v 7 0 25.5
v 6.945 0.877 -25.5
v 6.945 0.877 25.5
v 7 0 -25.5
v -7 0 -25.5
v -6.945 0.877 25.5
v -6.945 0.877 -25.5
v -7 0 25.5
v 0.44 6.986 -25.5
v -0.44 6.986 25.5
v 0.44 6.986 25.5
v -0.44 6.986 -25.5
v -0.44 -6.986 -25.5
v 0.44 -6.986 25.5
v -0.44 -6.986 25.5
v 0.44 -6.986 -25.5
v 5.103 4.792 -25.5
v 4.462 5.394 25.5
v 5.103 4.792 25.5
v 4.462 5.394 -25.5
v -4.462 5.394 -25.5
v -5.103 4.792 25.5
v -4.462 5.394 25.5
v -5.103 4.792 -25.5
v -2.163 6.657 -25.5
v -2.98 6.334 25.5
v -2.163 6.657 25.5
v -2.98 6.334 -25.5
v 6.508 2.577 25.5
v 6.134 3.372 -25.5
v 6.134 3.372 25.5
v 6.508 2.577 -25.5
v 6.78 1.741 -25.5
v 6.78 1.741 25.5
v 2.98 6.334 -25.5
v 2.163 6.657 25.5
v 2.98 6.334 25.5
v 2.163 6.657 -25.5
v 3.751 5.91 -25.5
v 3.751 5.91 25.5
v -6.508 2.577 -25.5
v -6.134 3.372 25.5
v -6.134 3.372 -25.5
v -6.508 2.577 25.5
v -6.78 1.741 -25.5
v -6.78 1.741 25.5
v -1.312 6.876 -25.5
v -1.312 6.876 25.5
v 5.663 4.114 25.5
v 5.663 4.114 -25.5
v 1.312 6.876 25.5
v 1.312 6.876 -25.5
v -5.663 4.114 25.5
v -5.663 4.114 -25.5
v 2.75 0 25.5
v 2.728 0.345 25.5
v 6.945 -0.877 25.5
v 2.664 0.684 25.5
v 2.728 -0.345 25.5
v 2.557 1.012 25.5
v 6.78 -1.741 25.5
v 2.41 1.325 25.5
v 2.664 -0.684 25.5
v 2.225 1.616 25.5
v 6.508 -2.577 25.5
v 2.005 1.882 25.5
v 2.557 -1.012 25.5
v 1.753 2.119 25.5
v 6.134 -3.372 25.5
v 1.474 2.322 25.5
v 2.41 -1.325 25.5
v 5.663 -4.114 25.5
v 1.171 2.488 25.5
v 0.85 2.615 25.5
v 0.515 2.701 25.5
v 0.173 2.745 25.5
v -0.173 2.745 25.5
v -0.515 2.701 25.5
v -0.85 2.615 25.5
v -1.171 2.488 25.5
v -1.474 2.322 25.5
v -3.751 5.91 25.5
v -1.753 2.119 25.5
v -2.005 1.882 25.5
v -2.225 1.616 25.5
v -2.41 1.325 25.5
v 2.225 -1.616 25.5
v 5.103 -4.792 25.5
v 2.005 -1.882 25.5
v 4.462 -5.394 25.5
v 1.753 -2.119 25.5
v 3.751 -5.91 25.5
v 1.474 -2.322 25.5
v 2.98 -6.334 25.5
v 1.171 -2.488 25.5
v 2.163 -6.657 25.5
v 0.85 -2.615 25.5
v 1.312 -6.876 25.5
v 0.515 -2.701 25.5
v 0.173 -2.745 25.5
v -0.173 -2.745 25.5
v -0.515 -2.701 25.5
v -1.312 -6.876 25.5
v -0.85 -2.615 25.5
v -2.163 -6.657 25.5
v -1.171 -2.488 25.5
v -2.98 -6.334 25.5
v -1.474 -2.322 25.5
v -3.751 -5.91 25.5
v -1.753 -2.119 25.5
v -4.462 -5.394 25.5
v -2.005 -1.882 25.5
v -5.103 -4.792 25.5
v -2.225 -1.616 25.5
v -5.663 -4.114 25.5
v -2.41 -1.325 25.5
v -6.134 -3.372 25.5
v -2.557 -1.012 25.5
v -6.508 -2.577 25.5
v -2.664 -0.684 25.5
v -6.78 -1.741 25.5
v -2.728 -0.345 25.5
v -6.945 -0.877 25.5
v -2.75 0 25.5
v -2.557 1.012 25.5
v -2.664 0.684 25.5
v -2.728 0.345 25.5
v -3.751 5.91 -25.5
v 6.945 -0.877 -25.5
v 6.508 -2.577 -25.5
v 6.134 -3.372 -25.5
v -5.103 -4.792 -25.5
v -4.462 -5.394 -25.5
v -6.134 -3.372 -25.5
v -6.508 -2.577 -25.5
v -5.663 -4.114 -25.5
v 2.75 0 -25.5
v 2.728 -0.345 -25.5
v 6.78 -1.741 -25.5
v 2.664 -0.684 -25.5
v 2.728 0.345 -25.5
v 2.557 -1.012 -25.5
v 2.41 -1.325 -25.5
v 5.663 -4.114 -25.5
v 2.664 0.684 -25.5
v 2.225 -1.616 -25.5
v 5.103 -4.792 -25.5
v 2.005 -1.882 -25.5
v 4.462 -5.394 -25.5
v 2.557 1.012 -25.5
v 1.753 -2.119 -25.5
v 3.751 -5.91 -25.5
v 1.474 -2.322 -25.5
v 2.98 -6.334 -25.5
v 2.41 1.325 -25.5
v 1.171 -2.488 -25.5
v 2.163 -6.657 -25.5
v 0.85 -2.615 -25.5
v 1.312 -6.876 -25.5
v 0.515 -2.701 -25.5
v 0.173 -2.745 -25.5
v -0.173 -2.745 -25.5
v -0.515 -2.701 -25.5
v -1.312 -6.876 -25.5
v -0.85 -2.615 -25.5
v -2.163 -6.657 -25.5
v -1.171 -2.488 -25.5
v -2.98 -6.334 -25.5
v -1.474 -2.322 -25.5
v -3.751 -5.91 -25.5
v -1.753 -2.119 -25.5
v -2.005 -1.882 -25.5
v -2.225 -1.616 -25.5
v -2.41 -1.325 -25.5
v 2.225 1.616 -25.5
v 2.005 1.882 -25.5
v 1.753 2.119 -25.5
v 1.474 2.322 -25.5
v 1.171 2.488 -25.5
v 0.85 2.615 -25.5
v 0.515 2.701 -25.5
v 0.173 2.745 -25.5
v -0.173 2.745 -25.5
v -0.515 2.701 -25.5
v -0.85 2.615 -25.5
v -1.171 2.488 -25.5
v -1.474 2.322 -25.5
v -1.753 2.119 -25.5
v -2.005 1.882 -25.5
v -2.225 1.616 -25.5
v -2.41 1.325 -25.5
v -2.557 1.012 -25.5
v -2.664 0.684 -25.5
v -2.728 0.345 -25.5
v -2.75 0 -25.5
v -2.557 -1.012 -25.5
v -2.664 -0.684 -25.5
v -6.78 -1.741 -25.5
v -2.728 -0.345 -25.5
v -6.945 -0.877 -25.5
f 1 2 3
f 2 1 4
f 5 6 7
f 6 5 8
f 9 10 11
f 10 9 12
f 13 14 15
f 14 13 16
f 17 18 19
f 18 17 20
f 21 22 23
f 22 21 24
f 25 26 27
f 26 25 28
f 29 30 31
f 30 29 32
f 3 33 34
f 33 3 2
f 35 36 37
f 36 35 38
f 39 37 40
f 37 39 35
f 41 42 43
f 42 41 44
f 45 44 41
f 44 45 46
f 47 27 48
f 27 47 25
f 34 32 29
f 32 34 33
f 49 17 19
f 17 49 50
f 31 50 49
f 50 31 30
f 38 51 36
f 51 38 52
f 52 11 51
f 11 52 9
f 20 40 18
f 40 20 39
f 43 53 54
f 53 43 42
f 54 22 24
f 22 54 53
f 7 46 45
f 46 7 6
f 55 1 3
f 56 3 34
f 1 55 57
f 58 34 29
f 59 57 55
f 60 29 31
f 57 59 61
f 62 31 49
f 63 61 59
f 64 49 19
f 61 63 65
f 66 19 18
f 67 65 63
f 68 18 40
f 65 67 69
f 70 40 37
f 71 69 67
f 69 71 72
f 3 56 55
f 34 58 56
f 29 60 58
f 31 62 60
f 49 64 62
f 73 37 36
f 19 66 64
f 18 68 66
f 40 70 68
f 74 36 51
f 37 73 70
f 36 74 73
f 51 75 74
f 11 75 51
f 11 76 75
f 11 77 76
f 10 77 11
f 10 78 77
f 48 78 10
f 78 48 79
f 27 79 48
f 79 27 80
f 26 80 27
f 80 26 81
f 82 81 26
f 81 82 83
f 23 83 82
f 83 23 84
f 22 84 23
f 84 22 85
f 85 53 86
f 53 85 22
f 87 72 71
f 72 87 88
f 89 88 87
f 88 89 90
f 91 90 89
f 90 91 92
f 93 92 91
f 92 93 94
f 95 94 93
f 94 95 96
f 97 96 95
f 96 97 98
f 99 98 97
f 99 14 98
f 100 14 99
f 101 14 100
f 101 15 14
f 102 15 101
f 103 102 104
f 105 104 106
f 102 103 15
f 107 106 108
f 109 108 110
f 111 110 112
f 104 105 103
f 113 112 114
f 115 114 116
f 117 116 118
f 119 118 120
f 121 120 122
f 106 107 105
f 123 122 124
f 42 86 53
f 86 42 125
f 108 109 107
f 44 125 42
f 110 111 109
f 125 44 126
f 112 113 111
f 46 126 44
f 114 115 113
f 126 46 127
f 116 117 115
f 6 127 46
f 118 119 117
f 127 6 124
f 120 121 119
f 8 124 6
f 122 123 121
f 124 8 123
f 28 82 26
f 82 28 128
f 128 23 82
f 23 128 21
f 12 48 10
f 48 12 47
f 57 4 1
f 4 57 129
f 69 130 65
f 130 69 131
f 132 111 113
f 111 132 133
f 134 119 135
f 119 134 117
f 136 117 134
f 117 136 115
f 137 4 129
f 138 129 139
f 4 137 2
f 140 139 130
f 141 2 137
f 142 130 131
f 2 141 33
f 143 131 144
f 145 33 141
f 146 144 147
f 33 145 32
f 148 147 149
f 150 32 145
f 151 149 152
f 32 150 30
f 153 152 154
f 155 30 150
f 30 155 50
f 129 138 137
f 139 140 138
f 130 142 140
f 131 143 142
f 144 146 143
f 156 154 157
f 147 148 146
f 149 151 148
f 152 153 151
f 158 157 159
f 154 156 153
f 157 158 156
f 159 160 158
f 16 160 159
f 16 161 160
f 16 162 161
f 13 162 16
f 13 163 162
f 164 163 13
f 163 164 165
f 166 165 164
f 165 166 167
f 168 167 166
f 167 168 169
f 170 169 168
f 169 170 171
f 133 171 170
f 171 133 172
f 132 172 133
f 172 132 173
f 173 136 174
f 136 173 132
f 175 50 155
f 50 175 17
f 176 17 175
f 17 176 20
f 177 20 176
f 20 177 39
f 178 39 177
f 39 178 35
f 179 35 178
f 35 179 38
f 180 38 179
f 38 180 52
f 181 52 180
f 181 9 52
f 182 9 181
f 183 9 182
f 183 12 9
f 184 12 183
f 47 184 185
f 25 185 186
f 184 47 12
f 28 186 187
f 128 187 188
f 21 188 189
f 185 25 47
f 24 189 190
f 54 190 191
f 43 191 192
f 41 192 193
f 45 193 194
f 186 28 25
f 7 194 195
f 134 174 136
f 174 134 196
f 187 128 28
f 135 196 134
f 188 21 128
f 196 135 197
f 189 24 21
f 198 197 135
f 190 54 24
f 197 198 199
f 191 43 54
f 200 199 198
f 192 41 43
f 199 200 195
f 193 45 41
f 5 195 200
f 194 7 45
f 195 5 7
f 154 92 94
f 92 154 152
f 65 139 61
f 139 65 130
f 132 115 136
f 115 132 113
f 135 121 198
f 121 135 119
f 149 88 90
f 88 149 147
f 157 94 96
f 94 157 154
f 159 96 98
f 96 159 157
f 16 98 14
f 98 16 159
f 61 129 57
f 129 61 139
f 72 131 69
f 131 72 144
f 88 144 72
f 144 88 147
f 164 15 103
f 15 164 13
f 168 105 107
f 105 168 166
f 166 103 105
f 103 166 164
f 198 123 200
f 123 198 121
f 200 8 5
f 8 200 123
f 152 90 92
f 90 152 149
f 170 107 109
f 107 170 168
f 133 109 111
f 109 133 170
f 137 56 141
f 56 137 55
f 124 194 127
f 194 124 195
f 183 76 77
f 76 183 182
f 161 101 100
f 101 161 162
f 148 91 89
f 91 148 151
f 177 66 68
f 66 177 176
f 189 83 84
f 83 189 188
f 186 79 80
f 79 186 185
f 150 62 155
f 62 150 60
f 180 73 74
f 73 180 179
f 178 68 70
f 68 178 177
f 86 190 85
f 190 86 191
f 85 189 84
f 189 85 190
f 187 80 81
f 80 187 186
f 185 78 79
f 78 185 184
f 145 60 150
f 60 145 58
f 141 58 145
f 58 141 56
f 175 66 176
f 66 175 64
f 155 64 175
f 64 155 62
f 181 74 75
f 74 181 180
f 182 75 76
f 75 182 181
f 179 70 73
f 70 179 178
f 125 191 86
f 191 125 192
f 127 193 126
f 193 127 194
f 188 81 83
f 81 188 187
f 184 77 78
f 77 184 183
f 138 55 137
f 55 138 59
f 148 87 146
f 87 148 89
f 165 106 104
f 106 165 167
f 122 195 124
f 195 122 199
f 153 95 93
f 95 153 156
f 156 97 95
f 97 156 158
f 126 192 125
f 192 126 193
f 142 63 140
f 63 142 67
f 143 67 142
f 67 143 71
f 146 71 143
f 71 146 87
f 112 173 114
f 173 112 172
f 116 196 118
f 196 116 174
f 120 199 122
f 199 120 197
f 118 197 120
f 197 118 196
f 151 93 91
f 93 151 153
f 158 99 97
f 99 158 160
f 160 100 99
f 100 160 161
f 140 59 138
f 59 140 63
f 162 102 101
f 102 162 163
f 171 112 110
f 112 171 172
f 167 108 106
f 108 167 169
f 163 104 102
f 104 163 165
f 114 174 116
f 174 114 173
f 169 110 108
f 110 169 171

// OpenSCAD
$fn = 50;


difference() {
	union() {
		translate(v = [0, 0, -25.5000000000]) {
			cylinder(h = 51, r = 7.0000000000);
		}
	}
	union() {
		translate(v = [0, 0, -100.0000000000]) {
			cylinder(h = 200, r = 2.7500000000);
		}
	}
}
